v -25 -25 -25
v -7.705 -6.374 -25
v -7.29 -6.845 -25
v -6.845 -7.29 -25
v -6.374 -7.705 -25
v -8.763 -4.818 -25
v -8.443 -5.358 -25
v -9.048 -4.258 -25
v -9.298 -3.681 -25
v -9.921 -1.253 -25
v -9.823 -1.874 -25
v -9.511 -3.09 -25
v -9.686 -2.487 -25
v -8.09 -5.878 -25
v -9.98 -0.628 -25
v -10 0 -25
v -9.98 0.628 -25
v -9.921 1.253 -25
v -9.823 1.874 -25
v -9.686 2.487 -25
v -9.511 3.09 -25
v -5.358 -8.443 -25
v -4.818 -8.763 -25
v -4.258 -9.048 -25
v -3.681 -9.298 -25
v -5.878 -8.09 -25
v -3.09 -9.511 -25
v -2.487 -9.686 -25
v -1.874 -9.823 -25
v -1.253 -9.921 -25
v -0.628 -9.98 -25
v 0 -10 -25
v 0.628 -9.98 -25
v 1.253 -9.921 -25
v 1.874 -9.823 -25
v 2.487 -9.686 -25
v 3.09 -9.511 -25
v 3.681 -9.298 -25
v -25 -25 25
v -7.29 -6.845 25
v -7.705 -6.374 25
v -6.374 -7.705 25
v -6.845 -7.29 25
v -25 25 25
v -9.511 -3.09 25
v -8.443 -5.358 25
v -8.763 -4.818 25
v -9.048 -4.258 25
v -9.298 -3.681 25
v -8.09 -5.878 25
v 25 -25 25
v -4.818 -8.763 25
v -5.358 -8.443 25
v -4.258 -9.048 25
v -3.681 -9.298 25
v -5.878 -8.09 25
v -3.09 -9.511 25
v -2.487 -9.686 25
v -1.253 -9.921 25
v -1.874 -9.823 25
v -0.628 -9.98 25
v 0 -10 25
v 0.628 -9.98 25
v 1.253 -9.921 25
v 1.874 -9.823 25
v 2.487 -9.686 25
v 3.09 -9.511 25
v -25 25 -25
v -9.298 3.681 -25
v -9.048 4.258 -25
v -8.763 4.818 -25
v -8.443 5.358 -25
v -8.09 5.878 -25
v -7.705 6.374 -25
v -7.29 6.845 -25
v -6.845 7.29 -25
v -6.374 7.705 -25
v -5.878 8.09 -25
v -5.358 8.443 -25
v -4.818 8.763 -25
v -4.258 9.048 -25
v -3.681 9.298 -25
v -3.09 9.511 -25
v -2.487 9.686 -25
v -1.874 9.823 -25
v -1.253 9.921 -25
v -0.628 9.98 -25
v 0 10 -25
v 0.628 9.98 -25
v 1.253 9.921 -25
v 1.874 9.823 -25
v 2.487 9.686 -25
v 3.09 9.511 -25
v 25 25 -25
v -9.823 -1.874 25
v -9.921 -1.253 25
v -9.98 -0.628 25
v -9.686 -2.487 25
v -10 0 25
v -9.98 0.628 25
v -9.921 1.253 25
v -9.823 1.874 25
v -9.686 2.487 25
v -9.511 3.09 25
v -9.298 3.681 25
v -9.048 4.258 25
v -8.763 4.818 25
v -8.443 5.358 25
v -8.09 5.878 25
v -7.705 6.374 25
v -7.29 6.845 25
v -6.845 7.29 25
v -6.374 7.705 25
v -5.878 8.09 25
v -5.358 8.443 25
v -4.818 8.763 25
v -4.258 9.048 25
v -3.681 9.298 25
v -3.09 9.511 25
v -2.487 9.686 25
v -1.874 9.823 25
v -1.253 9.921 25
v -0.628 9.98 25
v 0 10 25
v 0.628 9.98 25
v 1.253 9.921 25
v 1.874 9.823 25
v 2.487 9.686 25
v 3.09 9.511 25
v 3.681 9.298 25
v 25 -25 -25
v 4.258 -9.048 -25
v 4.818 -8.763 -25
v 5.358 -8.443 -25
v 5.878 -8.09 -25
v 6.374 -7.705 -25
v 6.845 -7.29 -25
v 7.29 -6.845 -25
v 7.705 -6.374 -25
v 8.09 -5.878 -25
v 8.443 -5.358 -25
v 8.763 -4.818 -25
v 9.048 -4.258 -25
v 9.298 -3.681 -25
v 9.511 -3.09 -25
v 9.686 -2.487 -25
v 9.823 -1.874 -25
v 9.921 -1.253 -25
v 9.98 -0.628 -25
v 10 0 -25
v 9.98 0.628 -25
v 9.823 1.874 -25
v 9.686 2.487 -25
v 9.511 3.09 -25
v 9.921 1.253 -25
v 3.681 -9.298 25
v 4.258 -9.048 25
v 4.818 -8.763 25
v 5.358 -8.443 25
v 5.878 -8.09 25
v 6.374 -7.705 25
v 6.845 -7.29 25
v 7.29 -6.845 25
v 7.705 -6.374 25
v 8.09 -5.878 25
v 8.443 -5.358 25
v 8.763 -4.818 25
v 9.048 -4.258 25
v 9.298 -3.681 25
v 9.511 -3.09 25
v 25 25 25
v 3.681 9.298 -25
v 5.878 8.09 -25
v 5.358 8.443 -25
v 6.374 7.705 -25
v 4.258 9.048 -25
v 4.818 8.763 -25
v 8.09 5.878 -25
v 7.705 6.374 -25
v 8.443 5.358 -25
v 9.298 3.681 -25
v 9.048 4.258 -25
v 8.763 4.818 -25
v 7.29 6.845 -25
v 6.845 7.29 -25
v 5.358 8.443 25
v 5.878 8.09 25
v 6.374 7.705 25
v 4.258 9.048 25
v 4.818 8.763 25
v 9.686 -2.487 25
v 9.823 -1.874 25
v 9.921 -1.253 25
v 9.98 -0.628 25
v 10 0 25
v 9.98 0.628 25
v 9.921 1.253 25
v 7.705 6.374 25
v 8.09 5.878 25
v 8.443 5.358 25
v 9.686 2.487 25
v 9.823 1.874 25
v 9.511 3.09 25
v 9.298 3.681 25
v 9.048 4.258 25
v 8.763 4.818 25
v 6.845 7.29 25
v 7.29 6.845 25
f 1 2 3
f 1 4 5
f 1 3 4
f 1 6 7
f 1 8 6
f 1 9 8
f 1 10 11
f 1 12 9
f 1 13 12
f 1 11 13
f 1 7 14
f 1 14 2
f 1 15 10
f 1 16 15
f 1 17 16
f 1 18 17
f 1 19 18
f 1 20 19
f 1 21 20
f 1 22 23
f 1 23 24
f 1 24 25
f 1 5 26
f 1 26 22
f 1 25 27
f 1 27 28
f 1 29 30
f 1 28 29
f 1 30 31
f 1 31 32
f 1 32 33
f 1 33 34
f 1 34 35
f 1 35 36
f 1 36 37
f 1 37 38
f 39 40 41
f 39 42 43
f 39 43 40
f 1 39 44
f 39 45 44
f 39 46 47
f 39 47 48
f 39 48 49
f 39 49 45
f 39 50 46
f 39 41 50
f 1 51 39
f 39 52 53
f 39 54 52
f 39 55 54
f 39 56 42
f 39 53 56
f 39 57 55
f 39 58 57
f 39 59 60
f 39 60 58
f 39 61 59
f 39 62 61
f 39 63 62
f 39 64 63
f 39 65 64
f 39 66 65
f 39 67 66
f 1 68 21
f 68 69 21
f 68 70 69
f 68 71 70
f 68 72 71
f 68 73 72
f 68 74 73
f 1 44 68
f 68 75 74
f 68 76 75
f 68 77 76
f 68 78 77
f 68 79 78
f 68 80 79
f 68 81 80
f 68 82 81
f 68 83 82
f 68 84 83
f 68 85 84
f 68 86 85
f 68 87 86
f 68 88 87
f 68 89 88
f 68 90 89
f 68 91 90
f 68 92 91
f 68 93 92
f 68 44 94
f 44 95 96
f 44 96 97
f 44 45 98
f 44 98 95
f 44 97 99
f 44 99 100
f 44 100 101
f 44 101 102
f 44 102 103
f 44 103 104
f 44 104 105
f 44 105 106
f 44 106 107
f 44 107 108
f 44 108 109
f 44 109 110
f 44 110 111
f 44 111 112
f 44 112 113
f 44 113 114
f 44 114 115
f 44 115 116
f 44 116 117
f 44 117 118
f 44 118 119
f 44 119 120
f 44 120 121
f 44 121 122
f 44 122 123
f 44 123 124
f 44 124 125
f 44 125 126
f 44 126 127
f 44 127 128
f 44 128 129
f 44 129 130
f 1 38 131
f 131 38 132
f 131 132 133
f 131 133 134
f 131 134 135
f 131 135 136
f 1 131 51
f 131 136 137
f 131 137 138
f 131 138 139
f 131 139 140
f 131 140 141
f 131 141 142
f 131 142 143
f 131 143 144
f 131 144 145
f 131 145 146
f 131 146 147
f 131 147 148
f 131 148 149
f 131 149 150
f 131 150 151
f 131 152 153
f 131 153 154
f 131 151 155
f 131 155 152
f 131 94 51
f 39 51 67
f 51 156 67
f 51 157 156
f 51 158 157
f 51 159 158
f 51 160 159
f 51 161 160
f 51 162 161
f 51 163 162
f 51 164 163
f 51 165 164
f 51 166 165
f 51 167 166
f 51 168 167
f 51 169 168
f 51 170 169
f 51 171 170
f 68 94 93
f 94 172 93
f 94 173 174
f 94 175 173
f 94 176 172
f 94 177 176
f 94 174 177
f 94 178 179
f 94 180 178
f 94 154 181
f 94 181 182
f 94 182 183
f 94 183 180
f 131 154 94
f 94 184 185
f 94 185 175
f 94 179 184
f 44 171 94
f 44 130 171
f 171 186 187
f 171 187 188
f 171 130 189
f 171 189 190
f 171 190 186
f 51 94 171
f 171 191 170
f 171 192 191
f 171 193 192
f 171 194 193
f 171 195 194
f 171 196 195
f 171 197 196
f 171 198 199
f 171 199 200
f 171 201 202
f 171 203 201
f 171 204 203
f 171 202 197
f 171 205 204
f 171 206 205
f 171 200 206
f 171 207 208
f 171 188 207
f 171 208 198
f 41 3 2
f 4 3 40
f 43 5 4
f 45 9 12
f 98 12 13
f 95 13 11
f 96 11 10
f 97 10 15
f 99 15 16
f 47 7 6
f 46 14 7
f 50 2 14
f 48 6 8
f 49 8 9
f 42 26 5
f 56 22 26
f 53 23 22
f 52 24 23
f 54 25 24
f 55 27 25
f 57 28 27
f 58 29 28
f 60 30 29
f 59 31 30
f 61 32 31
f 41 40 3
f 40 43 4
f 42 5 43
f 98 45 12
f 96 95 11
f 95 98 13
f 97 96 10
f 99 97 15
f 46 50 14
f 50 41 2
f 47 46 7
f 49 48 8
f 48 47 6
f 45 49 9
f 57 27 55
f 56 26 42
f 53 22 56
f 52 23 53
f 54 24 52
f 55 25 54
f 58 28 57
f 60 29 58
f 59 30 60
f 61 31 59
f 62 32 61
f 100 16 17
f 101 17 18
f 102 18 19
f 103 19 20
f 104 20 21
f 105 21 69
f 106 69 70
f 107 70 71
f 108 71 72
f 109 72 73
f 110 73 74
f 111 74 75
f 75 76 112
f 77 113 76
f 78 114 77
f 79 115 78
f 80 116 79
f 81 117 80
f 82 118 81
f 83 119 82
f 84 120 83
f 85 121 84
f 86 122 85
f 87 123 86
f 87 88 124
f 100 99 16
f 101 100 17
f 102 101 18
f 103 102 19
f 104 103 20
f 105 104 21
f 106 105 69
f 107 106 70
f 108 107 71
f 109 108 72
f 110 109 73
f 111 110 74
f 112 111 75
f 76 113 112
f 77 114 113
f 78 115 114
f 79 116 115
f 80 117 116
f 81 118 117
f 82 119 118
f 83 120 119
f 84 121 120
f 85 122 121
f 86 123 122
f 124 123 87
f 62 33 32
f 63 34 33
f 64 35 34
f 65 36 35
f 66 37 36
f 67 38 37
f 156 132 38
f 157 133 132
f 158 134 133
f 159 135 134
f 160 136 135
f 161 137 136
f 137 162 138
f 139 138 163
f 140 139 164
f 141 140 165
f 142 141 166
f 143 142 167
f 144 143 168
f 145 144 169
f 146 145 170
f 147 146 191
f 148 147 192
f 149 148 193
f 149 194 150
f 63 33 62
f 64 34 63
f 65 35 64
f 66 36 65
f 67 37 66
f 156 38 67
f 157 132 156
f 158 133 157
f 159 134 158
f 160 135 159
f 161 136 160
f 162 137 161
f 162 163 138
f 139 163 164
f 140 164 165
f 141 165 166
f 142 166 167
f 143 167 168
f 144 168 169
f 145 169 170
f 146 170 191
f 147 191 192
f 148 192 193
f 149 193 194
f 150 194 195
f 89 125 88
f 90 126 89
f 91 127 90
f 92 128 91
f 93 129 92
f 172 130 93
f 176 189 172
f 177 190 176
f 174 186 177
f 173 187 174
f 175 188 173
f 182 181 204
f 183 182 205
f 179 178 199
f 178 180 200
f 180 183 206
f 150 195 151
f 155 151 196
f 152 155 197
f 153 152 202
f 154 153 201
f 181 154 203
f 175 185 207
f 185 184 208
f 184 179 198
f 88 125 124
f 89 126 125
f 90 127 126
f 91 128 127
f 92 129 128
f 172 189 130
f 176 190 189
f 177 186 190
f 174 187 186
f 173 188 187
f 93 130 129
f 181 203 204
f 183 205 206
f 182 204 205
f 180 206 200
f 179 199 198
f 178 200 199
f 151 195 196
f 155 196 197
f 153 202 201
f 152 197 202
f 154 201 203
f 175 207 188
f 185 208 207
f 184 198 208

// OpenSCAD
// 50mm cube with a through hole (diameter 20mm) along Z axis
difference() {
    cube([50, 50, 50], center=true);
    cylinder(h=60, d=20, center=true, $fn=100);
}
